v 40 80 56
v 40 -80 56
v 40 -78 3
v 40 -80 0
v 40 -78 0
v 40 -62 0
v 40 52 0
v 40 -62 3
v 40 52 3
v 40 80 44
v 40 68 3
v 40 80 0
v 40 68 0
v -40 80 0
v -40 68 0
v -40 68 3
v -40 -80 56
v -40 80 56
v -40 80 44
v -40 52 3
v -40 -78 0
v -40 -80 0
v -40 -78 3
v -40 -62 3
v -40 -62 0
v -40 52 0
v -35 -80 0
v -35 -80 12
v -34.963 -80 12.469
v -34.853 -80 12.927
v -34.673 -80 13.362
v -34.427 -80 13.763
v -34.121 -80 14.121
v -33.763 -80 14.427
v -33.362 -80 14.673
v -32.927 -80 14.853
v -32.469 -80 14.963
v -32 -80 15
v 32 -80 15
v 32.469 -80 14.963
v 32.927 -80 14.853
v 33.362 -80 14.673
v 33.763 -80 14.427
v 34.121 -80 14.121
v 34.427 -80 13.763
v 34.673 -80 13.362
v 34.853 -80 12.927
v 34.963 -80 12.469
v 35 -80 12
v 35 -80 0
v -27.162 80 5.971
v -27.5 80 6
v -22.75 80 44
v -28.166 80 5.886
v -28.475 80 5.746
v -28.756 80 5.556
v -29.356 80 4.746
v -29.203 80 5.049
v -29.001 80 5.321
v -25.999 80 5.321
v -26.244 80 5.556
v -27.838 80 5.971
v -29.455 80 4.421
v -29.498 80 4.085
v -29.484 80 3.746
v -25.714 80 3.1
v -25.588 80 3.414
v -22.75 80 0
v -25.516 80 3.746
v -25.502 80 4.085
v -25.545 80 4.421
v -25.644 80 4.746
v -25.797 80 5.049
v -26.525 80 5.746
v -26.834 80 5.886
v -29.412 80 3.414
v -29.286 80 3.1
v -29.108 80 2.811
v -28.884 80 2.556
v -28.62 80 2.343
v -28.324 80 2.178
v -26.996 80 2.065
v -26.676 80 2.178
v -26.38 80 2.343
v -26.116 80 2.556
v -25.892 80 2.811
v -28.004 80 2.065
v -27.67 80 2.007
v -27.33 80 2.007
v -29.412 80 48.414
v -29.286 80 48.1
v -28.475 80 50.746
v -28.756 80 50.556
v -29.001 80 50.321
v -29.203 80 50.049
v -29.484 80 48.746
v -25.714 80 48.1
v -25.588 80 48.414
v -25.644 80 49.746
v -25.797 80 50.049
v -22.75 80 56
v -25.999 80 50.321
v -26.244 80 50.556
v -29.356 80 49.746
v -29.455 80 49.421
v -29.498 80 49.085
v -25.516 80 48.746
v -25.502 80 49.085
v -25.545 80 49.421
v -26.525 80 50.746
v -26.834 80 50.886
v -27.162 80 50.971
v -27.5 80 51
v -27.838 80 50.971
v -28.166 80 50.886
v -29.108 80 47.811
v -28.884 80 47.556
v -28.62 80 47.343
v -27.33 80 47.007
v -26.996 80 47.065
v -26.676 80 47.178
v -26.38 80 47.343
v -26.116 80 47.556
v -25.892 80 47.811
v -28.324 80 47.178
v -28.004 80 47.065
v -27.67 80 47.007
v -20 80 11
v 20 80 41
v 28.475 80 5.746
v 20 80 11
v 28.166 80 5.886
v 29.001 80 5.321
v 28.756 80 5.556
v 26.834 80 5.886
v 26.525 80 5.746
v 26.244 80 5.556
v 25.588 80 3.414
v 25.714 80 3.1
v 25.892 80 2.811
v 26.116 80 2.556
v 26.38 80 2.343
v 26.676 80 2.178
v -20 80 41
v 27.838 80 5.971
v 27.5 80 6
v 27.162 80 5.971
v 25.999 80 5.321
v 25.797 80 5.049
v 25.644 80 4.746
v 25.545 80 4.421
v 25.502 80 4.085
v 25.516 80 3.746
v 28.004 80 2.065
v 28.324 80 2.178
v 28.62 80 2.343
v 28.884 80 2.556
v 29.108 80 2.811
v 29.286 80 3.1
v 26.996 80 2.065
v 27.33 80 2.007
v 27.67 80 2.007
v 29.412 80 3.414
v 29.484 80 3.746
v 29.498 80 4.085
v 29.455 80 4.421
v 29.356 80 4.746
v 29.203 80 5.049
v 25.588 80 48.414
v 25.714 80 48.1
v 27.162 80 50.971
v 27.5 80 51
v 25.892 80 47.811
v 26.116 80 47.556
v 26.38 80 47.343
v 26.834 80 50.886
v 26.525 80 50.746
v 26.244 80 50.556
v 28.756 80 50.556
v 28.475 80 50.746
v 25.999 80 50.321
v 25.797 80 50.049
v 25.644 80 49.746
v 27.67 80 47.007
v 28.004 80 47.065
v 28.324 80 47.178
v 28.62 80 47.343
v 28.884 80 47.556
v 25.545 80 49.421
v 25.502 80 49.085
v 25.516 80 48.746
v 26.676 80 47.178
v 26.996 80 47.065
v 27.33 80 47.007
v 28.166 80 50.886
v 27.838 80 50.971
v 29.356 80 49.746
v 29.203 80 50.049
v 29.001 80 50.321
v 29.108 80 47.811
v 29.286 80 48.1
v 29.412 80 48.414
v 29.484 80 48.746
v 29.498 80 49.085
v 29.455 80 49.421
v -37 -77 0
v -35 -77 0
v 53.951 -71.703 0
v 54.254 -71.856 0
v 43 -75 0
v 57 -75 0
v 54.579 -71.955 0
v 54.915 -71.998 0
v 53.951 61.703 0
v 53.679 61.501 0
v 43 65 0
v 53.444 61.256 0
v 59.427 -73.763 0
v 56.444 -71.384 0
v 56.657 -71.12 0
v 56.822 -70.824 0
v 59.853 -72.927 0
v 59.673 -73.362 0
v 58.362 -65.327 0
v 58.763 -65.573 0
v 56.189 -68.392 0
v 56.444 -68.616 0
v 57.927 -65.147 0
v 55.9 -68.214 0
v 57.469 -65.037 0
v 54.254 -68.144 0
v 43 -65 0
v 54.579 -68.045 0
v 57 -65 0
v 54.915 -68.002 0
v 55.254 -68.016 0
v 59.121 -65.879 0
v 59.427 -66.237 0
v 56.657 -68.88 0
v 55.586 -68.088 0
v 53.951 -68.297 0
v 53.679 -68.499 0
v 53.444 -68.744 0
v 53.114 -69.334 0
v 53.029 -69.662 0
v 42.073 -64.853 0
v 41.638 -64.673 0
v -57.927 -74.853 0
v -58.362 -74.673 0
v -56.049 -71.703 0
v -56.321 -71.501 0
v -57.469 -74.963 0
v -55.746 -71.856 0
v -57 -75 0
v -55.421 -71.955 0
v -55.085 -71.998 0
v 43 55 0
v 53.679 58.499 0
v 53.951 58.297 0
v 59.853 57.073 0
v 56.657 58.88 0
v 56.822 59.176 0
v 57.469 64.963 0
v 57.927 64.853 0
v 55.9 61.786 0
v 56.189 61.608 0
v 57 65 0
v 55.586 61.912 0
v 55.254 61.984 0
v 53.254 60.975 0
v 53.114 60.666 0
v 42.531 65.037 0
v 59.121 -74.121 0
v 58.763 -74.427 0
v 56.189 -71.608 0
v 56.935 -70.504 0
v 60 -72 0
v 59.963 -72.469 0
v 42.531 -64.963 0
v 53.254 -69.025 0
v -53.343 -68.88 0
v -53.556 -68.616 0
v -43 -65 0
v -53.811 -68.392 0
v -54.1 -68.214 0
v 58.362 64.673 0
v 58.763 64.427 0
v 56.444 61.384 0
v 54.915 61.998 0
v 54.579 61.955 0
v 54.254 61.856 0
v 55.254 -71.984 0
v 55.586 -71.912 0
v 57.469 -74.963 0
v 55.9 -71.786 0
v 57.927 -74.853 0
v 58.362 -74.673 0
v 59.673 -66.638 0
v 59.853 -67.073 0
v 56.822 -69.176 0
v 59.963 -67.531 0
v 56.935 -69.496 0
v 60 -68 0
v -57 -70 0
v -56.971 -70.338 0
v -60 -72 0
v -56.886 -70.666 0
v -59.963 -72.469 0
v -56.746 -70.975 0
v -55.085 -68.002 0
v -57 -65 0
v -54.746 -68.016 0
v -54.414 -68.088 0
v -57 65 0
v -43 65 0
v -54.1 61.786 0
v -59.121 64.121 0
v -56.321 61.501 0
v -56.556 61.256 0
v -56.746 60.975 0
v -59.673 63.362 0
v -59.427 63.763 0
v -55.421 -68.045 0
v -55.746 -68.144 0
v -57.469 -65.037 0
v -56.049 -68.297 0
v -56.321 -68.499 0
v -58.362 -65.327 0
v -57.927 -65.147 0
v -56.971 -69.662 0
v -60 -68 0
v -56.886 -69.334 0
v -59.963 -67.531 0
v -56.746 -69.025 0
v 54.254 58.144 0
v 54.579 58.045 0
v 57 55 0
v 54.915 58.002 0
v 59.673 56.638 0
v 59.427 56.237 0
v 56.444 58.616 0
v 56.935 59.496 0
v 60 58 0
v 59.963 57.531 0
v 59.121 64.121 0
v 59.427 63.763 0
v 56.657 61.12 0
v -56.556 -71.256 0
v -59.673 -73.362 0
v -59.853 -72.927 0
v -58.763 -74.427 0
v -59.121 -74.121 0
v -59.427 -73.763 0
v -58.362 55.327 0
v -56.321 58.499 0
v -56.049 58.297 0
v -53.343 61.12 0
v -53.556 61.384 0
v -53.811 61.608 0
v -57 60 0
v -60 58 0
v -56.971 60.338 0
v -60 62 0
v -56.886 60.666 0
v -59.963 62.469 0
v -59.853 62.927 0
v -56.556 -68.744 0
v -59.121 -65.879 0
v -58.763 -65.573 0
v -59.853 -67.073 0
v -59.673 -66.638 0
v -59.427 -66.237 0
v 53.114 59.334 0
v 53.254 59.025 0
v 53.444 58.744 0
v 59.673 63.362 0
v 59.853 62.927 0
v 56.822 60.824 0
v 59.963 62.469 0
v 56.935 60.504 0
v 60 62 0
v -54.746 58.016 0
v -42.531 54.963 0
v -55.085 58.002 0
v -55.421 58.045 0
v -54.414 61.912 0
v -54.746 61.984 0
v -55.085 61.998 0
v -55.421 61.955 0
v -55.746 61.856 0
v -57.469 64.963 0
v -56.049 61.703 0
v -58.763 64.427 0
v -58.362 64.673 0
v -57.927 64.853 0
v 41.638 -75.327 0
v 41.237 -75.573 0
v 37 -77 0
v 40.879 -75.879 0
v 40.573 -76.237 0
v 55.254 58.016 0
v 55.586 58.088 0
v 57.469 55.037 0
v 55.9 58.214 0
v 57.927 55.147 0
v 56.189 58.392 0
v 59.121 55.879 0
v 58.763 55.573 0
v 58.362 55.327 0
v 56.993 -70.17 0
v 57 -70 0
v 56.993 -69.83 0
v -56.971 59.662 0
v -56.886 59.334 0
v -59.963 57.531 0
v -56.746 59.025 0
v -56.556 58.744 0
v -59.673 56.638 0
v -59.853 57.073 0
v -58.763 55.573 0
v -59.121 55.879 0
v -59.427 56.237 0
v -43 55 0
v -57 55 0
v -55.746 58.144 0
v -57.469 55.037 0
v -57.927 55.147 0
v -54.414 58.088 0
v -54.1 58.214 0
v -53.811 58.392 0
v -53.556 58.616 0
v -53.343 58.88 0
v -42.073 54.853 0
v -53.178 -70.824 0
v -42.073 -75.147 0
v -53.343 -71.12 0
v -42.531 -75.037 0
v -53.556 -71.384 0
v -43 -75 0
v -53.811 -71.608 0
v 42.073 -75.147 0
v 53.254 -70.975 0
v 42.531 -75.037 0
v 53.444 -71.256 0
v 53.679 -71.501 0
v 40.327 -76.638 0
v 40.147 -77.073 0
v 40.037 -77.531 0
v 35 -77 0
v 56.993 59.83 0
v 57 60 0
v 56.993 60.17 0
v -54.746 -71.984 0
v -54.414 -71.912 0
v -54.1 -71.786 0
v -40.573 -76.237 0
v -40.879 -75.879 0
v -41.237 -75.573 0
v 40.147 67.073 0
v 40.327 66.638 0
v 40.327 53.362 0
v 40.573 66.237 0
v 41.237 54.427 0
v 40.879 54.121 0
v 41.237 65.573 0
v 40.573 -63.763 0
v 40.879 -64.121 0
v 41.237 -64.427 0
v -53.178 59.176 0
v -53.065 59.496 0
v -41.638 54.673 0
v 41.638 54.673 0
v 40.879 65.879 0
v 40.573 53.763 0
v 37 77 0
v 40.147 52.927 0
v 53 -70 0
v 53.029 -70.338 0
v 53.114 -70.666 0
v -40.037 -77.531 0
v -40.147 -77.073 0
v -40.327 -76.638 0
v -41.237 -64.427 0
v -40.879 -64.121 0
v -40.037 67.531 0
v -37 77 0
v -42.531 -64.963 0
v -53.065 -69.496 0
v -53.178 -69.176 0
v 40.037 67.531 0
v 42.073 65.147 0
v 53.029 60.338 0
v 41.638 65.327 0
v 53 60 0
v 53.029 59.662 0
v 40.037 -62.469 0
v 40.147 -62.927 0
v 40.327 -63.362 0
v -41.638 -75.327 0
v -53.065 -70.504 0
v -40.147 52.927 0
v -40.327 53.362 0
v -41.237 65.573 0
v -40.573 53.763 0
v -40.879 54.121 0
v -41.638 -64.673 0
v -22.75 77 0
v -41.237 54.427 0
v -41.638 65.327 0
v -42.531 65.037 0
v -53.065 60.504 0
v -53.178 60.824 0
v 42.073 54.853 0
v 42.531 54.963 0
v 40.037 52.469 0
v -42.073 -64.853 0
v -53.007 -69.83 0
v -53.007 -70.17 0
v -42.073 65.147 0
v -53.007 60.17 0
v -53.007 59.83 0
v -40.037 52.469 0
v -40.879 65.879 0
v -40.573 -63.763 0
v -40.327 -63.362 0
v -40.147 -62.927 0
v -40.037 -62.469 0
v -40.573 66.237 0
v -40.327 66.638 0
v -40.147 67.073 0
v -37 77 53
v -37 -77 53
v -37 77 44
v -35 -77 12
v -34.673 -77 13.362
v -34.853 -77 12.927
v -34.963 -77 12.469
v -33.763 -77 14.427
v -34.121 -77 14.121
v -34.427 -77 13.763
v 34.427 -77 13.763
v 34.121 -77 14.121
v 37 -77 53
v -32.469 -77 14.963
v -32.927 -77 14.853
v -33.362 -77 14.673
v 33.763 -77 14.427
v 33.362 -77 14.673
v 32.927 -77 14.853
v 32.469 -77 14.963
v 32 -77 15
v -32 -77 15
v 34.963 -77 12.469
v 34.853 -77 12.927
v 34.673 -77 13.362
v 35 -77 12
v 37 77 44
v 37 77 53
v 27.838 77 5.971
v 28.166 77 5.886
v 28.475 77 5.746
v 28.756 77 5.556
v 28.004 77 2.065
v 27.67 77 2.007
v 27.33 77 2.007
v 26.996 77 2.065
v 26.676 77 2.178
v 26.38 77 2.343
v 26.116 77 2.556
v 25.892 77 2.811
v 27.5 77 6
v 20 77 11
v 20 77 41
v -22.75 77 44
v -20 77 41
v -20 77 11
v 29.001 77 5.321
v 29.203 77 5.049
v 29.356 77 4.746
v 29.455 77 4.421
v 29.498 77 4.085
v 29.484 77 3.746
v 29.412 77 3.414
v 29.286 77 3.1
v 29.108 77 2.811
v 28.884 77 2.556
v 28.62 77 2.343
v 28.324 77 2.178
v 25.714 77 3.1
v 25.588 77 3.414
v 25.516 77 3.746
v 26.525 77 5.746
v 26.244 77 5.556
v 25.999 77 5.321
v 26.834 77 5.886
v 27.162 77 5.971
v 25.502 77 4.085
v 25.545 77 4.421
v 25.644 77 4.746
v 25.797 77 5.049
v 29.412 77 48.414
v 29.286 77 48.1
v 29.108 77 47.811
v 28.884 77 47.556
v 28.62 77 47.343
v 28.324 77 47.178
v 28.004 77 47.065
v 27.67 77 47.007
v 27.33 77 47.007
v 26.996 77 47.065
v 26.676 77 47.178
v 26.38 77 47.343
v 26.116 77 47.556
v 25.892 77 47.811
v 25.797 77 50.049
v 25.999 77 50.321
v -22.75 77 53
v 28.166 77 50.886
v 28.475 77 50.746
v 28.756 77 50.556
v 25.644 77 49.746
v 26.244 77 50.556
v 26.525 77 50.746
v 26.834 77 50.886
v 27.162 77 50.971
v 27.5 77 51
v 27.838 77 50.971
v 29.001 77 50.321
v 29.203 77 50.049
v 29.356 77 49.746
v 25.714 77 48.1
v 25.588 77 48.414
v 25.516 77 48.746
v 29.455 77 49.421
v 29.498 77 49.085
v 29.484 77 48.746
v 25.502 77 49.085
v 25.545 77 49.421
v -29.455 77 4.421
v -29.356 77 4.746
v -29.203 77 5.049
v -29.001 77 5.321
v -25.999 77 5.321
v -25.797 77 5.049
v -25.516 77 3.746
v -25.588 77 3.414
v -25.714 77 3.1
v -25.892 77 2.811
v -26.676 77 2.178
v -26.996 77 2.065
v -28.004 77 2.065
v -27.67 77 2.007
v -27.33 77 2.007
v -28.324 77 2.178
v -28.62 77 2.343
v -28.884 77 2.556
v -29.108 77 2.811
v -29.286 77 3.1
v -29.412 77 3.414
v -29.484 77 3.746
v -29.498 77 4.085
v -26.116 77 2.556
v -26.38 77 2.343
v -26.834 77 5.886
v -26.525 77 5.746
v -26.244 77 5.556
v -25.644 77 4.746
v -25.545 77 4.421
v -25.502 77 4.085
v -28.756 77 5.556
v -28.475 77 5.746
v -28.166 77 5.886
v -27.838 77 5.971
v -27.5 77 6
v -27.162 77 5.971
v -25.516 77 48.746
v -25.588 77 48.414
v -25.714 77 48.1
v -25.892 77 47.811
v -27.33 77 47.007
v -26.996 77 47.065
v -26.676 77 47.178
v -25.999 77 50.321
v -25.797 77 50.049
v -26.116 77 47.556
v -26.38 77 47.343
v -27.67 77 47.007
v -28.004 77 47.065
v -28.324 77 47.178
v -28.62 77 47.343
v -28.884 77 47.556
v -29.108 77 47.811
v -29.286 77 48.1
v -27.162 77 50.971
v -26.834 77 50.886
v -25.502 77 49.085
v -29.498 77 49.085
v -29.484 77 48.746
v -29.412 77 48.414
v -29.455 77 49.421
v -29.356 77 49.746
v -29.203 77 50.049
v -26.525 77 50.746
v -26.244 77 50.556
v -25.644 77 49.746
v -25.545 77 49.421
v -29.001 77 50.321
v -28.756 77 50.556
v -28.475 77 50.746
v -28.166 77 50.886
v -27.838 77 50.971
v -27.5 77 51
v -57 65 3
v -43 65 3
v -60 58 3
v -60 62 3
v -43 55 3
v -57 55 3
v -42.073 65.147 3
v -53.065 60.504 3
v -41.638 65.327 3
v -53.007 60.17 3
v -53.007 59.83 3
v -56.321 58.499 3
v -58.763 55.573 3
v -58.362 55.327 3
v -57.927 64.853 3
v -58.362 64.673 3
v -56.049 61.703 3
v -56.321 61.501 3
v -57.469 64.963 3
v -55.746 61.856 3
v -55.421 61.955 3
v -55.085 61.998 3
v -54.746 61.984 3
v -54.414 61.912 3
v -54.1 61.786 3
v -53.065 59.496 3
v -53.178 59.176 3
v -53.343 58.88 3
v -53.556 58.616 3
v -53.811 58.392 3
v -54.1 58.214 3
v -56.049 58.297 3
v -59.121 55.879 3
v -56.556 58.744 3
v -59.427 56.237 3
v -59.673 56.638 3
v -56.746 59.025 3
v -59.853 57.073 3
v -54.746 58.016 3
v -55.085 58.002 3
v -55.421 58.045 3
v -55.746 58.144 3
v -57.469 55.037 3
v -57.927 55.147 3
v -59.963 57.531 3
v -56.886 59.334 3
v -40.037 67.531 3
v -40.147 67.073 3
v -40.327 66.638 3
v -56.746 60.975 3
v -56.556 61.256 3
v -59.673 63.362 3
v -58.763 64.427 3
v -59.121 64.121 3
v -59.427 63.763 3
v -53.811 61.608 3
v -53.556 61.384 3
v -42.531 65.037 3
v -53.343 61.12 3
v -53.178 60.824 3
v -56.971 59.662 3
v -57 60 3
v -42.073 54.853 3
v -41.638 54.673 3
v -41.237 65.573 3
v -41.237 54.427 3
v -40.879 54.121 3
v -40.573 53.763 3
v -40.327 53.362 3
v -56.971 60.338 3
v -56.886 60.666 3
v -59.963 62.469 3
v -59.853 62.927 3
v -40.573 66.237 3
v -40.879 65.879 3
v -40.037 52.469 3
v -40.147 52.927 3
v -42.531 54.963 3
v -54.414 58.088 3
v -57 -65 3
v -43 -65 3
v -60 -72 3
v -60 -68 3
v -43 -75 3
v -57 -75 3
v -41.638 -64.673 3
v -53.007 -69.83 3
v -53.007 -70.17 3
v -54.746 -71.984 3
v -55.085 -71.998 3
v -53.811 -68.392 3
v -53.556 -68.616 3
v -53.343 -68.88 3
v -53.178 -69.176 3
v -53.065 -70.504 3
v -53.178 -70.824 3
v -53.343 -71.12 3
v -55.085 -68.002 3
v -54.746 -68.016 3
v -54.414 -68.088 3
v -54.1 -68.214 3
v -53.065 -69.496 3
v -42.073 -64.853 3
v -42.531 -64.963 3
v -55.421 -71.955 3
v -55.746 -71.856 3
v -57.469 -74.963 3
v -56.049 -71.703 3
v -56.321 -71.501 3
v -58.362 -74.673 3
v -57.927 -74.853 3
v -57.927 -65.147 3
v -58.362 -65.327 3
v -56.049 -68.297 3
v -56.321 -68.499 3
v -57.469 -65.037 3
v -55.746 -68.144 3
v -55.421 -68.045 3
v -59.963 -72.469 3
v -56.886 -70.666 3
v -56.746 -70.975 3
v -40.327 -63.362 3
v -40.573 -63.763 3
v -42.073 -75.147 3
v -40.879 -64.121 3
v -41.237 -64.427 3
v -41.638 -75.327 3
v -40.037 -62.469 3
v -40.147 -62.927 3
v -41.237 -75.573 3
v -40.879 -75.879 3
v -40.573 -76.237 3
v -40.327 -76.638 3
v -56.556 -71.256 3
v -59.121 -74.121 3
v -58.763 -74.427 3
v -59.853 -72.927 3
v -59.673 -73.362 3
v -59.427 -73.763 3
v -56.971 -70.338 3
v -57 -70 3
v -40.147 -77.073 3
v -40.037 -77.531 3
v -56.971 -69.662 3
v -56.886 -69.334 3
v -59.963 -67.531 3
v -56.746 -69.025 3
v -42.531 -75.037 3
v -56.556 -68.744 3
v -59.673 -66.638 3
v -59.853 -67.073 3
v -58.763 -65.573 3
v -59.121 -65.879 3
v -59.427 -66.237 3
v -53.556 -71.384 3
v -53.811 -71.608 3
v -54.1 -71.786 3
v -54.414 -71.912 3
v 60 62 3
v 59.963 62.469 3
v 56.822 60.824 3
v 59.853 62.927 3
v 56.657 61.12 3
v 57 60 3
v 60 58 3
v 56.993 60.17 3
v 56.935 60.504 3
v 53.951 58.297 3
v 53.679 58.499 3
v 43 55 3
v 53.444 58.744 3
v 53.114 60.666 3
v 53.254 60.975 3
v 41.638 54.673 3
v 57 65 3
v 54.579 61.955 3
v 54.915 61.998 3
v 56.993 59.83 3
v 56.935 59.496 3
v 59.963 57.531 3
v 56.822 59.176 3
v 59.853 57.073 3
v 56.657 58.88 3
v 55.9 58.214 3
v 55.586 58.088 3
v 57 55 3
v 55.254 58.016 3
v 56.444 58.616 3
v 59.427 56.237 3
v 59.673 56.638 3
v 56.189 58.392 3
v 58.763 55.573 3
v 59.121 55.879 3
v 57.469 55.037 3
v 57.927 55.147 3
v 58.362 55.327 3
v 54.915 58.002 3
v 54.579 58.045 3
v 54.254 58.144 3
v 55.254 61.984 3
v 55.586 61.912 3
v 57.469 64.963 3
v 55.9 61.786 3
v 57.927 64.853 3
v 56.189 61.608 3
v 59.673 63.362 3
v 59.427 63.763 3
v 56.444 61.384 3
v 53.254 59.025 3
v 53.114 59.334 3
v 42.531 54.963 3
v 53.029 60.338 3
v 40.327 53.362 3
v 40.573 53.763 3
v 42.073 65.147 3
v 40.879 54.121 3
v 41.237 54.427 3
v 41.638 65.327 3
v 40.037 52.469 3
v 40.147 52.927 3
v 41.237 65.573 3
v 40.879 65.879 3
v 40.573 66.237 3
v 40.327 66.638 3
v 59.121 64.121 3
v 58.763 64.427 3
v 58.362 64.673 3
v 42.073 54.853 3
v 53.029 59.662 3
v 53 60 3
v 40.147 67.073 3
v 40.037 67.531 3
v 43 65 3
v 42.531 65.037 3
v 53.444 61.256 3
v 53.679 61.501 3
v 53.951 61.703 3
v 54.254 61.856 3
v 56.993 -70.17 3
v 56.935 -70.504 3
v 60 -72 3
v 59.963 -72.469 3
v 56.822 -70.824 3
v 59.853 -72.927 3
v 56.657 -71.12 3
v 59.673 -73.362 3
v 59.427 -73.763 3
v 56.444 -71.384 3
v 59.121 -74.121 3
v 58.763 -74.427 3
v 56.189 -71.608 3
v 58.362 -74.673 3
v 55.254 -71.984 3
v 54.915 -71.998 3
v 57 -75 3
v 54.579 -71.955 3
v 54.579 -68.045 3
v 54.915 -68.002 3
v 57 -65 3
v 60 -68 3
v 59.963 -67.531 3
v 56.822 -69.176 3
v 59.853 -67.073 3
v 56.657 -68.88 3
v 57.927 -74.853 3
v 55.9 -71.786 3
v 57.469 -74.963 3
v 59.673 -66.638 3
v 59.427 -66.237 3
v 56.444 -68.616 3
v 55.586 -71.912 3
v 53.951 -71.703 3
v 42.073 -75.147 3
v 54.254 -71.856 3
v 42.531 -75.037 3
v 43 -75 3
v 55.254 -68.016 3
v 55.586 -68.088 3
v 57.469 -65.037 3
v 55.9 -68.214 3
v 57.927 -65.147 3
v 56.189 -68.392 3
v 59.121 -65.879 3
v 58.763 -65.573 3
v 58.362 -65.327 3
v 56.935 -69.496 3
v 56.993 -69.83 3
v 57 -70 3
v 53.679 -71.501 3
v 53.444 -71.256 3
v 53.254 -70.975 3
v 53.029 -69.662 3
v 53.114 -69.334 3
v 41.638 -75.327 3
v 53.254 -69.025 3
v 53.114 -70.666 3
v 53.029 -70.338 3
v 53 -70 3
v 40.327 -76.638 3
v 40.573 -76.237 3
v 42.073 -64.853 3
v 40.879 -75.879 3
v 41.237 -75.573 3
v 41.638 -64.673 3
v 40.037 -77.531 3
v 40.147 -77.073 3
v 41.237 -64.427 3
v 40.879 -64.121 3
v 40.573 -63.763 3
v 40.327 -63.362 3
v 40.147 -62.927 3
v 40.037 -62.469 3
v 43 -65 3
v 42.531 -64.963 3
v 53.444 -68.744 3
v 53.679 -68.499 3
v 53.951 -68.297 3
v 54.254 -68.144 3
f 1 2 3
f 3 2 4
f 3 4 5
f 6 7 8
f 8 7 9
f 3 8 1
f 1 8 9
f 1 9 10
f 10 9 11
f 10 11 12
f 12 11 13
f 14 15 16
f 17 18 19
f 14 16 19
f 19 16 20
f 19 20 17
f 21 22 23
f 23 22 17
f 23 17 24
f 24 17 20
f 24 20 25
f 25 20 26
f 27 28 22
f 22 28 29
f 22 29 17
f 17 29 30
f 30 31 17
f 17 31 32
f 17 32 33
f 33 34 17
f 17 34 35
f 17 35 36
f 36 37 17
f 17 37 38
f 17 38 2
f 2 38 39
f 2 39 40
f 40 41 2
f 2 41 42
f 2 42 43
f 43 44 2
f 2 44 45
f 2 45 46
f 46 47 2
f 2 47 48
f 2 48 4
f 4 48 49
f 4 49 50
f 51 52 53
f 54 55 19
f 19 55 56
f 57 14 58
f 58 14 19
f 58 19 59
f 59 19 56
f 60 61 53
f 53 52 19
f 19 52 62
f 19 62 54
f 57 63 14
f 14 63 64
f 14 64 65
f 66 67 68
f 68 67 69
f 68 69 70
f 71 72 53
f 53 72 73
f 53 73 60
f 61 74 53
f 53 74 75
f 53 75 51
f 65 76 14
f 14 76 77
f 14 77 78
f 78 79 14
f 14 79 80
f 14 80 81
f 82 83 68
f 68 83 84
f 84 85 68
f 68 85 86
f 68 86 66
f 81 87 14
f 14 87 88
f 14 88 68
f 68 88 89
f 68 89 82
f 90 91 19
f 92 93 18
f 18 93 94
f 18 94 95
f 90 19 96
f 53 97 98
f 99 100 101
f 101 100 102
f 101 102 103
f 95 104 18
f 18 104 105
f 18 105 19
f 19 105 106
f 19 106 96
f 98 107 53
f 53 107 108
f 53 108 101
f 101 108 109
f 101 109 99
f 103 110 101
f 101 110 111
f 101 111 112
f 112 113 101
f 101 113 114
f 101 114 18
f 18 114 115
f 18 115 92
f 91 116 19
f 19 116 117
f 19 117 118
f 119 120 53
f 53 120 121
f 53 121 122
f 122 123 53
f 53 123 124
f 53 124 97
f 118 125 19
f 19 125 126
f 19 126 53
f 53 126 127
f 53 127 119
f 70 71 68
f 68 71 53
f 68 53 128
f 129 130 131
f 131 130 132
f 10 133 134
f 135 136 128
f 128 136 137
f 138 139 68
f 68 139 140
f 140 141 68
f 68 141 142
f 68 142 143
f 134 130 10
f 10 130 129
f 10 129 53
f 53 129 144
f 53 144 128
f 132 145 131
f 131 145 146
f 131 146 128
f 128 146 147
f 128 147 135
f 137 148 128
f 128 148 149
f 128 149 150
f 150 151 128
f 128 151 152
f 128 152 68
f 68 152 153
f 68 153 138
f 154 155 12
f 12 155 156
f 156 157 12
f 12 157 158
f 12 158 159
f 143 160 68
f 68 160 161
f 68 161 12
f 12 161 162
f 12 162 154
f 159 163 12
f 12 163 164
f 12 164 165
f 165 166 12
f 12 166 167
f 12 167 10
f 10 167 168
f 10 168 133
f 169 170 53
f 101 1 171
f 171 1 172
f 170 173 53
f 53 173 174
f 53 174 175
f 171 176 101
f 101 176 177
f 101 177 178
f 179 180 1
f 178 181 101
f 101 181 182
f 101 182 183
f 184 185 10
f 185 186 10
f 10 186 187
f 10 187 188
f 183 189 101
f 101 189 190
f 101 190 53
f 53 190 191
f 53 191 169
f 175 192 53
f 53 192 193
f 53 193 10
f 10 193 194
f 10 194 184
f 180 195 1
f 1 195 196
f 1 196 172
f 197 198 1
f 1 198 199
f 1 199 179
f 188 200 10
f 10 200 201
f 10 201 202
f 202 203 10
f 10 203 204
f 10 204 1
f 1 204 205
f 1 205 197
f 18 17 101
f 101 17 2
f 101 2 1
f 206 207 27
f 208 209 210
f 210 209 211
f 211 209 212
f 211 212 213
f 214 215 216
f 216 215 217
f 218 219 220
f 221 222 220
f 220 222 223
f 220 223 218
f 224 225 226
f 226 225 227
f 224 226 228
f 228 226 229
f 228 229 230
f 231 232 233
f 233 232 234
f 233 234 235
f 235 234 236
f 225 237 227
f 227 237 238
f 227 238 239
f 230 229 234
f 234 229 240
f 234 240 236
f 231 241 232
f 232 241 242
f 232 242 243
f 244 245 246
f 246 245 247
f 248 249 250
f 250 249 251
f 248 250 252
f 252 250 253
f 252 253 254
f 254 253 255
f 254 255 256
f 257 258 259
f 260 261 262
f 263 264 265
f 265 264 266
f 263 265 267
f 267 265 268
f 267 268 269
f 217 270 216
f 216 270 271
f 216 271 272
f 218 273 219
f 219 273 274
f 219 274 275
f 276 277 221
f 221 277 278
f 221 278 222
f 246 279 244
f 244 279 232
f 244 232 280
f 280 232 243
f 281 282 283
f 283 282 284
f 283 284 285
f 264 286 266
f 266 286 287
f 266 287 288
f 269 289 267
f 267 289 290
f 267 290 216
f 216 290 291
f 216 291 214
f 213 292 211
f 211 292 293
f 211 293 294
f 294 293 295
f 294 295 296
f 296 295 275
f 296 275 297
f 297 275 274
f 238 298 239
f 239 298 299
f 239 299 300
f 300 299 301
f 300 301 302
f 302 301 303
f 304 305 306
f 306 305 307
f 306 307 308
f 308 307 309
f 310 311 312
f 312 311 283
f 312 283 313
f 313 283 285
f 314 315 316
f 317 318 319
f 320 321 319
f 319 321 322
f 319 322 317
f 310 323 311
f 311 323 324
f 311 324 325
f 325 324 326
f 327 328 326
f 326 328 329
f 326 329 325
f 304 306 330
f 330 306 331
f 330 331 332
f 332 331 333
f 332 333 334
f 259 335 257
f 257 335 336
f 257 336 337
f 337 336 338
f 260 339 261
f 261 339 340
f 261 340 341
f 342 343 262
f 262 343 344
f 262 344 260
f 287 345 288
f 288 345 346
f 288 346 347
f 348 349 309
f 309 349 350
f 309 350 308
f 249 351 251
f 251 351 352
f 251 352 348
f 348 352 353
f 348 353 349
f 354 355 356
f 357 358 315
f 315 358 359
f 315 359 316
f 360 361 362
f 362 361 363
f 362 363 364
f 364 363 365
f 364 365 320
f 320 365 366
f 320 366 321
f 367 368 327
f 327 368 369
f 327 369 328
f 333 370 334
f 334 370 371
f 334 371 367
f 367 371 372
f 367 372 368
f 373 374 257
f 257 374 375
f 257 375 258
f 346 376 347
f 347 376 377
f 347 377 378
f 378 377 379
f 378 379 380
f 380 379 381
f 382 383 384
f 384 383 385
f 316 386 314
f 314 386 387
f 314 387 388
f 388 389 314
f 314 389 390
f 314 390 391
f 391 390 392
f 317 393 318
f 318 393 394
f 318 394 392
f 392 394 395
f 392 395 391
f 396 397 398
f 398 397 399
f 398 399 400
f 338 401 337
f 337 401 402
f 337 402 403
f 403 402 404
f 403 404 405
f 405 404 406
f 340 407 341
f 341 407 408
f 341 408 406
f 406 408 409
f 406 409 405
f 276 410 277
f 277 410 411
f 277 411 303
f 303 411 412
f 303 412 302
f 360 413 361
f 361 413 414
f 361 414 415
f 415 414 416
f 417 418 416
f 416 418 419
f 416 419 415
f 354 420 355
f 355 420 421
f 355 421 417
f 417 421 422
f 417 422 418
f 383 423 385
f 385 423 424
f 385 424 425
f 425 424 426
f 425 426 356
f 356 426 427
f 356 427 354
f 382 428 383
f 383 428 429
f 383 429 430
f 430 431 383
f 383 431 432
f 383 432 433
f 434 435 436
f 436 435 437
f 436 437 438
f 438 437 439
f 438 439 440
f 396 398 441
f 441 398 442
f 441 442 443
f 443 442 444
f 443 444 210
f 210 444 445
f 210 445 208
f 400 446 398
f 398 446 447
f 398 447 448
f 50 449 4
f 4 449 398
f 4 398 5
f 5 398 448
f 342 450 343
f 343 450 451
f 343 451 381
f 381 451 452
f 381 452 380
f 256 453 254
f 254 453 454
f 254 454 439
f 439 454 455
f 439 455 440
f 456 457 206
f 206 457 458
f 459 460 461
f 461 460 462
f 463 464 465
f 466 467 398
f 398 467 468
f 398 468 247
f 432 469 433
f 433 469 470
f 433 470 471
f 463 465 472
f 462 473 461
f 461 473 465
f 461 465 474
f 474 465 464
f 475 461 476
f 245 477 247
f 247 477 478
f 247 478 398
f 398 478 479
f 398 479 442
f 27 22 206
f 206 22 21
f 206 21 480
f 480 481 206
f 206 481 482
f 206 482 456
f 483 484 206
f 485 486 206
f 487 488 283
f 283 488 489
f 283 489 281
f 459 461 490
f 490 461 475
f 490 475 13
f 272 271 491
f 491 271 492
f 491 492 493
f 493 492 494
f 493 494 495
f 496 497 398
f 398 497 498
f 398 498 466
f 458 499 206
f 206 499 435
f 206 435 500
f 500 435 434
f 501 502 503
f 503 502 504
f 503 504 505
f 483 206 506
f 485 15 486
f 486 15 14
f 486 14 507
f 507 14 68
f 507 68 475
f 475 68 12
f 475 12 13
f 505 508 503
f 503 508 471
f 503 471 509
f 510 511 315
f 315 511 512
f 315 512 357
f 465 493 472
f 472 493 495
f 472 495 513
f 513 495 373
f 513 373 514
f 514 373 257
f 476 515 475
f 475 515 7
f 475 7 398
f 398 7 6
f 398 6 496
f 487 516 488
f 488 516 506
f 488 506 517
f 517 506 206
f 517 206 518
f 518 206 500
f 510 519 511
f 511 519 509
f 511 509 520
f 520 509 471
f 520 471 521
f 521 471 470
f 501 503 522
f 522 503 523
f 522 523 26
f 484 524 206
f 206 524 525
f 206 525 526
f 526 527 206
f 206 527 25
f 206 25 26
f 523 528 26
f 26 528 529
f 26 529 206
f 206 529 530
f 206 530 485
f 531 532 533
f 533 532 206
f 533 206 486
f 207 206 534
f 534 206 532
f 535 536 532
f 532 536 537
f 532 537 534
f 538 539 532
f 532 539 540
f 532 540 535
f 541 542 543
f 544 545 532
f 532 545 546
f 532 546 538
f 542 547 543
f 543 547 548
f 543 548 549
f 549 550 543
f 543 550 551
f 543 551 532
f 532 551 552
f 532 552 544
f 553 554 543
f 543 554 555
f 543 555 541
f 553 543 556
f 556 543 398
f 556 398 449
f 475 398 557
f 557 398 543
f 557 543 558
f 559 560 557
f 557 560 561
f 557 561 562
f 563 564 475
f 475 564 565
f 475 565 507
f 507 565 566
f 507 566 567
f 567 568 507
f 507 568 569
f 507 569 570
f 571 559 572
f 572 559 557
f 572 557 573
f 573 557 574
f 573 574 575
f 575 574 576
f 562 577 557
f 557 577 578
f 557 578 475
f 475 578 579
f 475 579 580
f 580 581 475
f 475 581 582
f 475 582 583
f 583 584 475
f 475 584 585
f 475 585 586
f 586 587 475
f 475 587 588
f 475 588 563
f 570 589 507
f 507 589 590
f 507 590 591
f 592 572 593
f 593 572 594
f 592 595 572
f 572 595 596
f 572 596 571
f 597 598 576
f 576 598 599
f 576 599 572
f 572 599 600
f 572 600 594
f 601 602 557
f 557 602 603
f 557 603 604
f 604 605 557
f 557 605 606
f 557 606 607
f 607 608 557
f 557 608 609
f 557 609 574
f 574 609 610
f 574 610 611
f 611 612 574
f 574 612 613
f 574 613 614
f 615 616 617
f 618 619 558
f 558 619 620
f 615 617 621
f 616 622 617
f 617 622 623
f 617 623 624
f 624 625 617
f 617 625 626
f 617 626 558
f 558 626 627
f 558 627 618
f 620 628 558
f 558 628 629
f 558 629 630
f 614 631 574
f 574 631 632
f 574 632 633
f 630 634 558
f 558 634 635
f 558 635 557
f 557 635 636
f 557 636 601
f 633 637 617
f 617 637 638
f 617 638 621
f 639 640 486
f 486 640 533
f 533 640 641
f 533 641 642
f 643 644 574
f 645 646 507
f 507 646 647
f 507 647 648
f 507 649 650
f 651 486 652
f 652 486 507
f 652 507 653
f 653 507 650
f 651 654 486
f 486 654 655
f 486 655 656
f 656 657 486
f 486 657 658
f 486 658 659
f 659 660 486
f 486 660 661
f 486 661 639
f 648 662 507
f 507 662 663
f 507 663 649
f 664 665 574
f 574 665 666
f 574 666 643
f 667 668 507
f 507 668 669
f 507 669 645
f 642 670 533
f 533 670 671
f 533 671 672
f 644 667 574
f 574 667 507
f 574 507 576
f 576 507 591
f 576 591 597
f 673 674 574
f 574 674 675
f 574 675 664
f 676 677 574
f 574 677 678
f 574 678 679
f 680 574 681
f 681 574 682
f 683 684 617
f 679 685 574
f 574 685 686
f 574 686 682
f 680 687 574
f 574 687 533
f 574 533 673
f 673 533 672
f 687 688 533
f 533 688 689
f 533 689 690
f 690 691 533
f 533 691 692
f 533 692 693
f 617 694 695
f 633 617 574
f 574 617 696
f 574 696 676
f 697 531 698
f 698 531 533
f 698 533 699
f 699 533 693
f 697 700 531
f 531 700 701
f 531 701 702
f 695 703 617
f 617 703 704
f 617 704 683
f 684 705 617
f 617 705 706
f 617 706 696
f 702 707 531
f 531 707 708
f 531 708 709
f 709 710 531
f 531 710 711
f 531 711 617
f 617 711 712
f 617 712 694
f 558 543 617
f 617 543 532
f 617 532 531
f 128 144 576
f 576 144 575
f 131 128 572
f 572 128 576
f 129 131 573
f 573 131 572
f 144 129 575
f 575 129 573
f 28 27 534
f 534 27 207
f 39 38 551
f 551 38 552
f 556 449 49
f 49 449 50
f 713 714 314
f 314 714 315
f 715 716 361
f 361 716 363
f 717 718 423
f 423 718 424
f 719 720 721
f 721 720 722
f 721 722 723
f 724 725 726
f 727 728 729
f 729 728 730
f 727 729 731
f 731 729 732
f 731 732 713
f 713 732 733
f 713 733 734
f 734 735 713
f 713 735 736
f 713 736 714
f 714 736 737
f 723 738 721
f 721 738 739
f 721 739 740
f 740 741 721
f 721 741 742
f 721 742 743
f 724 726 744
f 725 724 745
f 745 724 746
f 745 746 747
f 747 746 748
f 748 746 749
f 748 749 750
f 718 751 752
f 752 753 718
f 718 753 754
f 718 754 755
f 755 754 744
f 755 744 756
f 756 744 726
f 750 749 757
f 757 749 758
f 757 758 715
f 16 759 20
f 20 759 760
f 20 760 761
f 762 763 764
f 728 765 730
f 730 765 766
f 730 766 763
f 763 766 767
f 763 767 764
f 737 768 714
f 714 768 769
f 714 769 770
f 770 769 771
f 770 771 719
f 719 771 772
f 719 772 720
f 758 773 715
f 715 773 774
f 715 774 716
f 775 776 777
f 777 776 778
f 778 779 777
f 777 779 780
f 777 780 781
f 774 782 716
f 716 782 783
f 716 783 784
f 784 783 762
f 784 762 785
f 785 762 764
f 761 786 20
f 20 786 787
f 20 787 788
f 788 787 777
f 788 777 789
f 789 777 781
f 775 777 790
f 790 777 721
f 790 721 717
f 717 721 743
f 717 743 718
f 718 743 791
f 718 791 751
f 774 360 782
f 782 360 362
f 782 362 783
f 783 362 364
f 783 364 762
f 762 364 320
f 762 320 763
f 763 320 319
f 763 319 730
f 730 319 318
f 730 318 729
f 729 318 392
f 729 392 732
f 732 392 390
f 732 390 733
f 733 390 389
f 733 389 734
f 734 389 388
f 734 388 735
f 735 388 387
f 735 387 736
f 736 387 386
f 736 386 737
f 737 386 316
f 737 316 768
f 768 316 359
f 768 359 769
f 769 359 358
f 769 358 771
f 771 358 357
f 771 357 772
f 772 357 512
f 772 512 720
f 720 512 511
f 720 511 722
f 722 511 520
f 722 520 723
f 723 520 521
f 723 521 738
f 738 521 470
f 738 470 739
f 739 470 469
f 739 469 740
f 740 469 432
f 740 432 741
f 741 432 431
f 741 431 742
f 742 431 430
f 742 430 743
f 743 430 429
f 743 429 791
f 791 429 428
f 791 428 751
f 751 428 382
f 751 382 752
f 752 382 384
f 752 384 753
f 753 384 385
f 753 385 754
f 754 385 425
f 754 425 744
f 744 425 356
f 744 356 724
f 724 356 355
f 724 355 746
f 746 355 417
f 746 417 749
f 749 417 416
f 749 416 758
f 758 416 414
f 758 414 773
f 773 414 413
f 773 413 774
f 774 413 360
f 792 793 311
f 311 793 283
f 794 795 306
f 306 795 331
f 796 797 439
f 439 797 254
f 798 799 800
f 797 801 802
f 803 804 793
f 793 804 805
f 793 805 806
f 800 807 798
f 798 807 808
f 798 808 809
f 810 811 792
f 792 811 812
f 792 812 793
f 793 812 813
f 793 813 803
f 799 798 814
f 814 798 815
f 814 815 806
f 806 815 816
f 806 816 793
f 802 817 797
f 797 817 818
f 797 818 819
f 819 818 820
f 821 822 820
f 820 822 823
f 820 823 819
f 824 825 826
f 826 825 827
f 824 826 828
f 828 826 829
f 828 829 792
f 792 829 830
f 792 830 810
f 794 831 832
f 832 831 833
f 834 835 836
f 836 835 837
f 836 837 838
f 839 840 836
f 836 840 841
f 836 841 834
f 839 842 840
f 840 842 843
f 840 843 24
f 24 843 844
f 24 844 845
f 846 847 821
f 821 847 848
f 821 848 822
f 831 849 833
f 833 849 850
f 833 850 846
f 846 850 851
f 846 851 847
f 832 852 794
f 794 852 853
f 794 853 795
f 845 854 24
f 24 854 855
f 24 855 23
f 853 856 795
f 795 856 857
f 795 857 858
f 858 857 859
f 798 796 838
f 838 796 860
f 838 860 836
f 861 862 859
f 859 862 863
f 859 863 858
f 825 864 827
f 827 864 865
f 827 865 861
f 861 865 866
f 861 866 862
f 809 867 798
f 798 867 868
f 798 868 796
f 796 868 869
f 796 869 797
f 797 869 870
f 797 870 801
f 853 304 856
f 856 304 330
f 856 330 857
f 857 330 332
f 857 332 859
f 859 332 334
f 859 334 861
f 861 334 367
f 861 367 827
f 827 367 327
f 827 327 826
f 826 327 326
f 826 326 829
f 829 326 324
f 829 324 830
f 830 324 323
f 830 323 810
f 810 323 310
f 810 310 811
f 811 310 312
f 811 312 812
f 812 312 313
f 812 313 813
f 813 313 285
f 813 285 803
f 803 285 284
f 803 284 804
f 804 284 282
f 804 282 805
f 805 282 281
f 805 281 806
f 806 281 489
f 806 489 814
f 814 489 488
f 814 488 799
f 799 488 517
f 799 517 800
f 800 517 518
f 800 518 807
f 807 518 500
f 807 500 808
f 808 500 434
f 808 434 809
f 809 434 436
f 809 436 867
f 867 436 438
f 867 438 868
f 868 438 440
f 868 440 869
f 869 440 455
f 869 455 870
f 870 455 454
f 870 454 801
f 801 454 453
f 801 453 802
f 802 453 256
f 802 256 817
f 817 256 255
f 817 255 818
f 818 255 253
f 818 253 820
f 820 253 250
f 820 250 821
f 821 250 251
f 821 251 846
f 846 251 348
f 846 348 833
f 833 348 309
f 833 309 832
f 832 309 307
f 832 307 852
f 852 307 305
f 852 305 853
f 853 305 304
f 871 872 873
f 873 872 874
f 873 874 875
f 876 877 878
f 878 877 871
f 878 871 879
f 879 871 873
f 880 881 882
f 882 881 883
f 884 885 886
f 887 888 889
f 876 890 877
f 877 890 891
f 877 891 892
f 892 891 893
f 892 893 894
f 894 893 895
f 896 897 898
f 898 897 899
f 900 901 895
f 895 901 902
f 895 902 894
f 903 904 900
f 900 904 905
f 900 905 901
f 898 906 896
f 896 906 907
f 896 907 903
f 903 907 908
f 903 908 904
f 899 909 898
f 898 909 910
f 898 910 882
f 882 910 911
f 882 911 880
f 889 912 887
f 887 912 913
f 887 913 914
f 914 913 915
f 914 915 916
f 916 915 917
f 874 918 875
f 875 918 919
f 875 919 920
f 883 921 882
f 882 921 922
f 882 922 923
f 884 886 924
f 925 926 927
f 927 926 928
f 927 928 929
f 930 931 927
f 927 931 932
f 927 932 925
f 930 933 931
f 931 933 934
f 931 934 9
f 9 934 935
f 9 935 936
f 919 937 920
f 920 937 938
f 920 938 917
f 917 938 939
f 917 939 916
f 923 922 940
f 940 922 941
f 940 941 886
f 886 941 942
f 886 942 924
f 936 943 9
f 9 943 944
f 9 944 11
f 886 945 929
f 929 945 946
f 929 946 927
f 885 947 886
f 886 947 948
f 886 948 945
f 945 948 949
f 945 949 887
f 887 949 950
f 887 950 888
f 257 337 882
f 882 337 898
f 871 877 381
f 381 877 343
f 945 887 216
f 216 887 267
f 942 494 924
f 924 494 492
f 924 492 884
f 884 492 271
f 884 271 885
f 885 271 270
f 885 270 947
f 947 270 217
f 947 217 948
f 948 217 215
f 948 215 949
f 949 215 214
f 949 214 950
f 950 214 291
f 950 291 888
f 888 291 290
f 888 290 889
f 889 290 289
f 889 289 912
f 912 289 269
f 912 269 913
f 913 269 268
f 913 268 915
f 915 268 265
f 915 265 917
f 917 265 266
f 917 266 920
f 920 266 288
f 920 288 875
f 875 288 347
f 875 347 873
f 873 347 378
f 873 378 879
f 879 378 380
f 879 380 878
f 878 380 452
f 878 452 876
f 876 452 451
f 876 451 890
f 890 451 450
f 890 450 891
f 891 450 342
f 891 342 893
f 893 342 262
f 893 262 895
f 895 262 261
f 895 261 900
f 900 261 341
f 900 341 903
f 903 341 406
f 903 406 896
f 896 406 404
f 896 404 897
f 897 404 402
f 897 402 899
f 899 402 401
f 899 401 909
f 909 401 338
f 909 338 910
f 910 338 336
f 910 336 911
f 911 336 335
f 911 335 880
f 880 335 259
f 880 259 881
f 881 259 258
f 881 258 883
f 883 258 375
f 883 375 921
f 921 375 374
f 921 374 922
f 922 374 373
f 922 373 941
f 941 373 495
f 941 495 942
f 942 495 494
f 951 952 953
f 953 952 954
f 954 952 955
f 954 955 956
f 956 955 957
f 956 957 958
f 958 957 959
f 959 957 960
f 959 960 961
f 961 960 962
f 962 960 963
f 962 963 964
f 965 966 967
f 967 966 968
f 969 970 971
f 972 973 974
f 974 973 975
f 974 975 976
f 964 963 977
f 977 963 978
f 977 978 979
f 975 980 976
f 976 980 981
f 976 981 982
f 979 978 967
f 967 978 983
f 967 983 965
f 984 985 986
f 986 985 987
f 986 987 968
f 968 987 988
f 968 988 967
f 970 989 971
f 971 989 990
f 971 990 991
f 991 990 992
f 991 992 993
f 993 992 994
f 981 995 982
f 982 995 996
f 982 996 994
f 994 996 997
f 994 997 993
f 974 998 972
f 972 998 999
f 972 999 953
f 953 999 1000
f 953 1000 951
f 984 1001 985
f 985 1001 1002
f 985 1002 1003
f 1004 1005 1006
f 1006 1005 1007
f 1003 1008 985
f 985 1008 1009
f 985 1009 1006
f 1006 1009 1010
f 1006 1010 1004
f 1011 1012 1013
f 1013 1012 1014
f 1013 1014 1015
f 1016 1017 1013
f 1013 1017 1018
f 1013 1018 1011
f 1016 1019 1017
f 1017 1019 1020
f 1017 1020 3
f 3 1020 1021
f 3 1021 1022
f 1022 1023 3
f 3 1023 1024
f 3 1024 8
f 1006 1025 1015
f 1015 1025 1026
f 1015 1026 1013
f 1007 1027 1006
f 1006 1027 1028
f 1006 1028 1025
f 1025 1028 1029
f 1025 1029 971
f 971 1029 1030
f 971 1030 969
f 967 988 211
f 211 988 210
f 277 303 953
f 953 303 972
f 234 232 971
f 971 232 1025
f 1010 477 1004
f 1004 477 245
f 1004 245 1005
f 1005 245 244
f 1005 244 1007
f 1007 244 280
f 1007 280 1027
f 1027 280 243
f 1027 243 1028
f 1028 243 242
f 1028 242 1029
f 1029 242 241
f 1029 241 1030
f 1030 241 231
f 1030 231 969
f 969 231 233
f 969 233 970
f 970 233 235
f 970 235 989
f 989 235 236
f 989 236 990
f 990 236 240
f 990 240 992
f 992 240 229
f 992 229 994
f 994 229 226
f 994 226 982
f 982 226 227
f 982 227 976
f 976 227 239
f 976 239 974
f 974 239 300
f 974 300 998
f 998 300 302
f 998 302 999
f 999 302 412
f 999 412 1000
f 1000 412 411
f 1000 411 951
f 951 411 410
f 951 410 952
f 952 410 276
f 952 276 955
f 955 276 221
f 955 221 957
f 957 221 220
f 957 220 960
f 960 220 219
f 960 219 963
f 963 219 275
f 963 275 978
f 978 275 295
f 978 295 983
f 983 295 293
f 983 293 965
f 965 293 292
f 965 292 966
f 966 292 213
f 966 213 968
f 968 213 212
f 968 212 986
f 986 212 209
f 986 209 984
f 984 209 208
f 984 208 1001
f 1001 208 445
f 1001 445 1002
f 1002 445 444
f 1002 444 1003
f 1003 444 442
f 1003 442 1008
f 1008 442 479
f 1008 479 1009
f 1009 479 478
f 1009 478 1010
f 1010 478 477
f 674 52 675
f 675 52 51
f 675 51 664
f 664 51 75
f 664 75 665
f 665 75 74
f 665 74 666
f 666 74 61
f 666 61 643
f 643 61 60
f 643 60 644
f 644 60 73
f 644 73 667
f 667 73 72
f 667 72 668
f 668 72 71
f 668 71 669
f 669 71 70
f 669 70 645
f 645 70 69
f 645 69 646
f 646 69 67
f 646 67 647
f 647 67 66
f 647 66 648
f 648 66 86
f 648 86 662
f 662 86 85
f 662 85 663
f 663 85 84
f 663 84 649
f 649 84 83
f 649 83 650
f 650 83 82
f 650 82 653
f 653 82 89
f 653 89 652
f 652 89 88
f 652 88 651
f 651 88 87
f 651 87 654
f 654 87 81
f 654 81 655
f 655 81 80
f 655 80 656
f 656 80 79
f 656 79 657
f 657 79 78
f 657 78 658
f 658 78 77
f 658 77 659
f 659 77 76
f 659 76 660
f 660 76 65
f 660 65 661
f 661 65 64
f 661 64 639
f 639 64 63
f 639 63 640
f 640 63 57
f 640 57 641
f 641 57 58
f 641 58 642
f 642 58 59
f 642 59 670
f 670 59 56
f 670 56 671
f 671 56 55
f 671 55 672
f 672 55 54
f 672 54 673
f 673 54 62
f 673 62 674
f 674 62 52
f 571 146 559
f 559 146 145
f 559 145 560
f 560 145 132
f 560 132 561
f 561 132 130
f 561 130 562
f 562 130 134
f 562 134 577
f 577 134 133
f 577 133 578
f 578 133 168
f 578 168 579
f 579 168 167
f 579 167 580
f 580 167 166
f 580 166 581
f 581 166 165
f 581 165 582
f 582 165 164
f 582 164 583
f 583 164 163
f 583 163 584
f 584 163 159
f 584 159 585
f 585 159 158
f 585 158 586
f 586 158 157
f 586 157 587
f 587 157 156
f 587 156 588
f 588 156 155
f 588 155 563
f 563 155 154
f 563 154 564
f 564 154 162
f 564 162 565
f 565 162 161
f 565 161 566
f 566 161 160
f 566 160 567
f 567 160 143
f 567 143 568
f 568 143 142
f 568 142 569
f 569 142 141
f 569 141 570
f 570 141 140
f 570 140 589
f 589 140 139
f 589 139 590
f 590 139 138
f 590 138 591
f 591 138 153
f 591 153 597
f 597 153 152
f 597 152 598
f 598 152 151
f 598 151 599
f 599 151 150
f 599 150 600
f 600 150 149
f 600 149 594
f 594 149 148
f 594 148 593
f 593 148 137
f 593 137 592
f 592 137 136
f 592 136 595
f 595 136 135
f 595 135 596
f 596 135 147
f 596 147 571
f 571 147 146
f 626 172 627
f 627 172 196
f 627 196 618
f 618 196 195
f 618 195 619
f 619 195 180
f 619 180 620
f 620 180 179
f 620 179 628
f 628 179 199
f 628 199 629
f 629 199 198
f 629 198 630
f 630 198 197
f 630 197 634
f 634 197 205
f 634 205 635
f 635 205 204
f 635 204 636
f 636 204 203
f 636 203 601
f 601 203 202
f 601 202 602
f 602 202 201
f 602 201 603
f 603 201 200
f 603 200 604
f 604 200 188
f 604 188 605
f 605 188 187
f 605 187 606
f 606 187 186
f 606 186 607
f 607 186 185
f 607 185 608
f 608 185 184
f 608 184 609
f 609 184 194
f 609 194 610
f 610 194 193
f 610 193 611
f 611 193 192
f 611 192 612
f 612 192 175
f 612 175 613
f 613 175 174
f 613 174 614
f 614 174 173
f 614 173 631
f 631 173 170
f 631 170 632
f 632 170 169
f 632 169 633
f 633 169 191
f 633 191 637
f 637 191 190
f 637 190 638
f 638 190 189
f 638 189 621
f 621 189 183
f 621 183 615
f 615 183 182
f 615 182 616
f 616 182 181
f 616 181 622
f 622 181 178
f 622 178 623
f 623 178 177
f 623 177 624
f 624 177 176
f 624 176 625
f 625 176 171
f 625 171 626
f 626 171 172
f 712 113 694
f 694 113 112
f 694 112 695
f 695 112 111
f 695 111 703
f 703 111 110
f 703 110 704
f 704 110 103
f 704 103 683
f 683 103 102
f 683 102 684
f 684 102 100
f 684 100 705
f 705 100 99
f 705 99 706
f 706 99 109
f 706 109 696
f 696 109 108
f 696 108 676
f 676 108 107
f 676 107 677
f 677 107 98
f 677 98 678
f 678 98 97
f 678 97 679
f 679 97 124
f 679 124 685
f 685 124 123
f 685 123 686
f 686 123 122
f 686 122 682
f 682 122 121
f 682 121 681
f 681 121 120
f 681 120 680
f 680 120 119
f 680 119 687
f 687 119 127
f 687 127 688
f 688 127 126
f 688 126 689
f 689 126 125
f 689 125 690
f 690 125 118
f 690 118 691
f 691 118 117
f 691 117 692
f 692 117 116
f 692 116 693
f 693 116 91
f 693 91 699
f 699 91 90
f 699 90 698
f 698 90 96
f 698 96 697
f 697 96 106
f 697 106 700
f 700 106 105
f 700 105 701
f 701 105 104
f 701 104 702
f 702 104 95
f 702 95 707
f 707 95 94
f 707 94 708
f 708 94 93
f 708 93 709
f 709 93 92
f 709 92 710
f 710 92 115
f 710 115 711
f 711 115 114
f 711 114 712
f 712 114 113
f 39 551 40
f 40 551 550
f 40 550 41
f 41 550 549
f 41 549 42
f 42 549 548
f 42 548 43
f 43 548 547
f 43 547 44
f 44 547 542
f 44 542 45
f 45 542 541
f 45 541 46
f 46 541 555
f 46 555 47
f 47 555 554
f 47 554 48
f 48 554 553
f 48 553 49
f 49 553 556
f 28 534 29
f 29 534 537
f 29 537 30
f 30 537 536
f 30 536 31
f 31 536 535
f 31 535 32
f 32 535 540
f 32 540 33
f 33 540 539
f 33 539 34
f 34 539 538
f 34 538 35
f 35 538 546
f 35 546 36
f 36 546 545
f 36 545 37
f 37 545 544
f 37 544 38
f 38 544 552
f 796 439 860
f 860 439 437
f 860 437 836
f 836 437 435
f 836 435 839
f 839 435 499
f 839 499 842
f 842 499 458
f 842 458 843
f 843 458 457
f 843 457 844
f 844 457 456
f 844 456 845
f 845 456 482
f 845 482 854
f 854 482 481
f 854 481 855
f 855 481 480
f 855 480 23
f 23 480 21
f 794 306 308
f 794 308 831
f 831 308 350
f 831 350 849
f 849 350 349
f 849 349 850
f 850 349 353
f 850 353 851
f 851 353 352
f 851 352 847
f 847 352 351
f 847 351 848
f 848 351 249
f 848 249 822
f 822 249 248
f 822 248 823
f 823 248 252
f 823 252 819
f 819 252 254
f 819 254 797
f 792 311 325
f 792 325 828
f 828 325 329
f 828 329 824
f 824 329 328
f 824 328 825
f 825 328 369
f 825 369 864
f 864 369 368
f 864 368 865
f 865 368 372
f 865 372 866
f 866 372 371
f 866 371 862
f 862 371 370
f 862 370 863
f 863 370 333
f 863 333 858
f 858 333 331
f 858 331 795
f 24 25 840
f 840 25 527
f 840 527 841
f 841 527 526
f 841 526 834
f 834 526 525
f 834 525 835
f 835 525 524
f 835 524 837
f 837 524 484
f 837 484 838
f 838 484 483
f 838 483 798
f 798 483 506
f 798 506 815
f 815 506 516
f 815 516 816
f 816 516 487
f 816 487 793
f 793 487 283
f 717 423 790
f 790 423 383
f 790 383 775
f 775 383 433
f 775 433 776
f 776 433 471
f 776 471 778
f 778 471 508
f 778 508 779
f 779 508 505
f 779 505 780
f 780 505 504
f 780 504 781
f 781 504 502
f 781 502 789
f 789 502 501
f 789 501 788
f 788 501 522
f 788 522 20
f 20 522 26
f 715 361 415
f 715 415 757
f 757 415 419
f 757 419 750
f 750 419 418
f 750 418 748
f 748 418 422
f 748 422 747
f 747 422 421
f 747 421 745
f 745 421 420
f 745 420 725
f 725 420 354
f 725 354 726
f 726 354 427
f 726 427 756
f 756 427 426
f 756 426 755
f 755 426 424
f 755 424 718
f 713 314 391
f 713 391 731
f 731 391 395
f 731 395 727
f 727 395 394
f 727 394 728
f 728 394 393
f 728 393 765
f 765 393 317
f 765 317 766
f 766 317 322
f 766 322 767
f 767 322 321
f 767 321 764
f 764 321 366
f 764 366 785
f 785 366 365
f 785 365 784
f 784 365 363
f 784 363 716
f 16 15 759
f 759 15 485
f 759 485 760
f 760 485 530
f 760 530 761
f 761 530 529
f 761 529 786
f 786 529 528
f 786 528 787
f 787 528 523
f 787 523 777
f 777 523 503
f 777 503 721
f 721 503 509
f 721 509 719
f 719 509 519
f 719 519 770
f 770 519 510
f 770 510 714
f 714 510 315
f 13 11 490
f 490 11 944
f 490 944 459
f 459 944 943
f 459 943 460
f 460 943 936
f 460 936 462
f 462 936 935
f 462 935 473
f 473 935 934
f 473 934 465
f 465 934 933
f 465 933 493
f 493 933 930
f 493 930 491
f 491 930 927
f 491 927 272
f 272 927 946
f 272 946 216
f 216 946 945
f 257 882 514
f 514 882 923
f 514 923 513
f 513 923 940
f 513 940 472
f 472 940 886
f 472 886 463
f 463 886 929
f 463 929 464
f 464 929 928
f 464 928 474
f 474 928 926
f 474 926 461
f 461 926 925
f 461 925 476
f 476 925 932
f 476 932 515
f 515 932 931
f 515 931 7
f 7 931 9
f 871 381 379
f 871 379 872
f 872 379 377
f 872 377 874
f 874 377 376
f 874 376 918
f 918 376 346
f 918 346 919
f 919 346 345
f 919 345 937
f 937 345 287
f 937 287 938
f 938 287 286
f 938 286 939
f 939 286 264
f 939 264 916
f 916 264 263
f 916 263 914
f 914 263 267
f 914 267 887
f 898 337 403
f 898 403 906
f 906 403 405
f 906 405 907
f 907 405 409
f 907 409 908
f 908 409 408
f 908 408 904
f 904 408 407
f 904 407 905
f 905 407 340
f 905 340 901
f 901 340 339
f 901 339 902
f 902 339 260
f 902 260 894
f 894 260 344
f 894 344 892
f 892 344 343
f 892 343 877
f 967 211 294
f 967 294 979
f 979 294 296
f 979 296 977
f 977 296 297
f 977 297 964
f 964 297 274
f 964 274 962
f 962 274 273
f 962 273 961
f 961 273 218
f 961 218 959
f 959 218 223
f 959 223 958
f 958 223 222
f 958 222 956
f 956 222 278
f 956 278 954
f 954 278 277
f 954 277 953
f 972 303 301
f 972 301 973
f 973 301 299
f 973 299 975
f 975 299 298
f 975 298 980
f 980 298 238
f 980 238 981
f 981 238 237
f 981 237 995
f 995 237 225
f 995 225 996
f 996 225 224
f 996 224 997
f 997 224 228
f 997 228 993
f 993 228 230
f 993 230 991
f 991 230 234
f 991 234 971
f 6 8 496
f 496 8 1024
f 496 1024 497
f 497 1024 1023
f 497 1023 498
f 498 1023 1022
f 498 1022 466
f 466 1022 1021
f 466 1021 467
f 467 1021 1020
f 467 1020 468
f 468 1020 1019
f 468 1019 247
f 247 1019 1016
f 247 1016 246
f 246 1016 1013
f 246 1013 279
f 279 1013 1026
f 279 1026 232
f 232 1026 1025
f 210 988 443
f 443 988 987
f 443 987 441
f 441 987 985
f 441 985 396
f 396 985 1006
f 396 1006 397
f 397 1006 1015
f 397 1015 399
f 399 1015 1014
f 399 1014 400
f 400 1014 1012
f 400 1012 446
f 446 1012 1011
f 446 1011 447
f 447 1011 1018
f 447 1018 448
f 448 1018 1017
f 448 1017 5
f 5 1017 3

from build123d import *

# Parameters (mm, degrees)
SKETCH1_W           = 80
SKETCH1_H           = 160
BOSS_EXTRUDE1_DEPTH = 56
SHELL1_T            = -3
SKETCH2_W           = 40
SKETCH2_H           = 30
CUT_EXTRUDE1_DEPTH  = 70
SKETCH4_W           = 70
SKETCH4_H           = 15
CUT_EXTRUDE3_DEPTH  = 70
SKETCH5_W           = 20
SKETCH5_H           = 10
SKETCH5_R           = 2
BOSS_EXTRUDE2_DEPTH = 3
SKETCH6_R           = 2
CUT_EXTRUDE4_DEPTH  = 3
FILLET1_R           = 3


with BuildPart() as part:
    # Sketch1 → Boss-Extrude1 (new body)
    with BuildSketch(Plane.XY):
        Rectangle(SKETCH1_W, SKETCH1_H)
    extrude(amount=BOSS_EXTRUDE1_DEPTH)

    # Shell1
    shell1_openings = [part.faces().sort_by_distance(p)[0] for p in [
        (0, 0, 0),
    ]]
    offset(amount=SHELL1_T, openings=shell1_openings, kind=Kind.INTERSECTION)

    # Sketch2 → Cut-Extrude1 (cut)
    with BuildSketch(Plane(origin=(0, 80, 0), x_dir=(1, 0, 0), z_dir=(0, 1, 0))):
        with Locations((0, -26)):
            Rectangle(SKETCH2_W, SKETCH2_H)
    extrude(amount=-CUT_EXTRUDE1_DEPTH, mode=Mode.SUBTRACT)

    # Sketch4 → Cut-Extrude3 (cut)
    with BuildSketch(Plane(origin=(0, -80, 0), x_dir=(-1, 0, 0), z_dir=(0, -1, 0))):
        with Locations((0, -7.5)):
            Rectangle(SKETCH4_W, SKETCH4_H)
    extrude(amount=-CUT_EXTRUDE3_DEPTH, mode=Mode.SUBTRACT)

    # Sketch5 → Boss-Extrude2 (add)
    # profile 1 of 2: a face of its own
    with BuildSketch(Plane(origin=(0, 0, 0), x_dir=(-1, 0, 0), z_dir=(0, 0, -1))):
        with Locations((50, 60)):
            Rectangle(SKETCH5_W, SKETCH5_H)
        with Locations((55, 60)):
            Circle(SKETCH5_R, mode=Mode.SUBTRACT)
    # profile 2 of 2: a face of its own
    with BuildSketch(Plane(origin=(0, 0, 0), x_dir=(-1, 0, 0), z_dir=(0, 0, -1))):
        with Locations((50, -70)):
            Rectangle(SKETCH5_W, SKETCH5_H)
        with Locations((55, -70)):
            Circle(SKETCH5_R, mode=Mode.SUBTRACT)
    boss_extrude2 = extrude(amount=-BOSS_EXTRUDE2_DEPTH)

    # Mirror1: Boss-Extrude2 across plane
    add(boss_extrude2.mirror(Plane(origin=(0, 0, 0), x_dir=(0, 0, 1), z_dir=(1, 0, 0))))

    # Sketch6 → Cut-Extrude4 (cut)
    with BuildSketch(Plane(origin=(0, 80, 0), x_dir=(1, 0, 0), z_dir=(0, 1, 0))):
        with Locations(Location((-27.5, -4, 0), (0, 0, 270))):
            Circle(SKETCH6_R)
        with Locations(Location((27.5, -4, 0), (0, 0, 270))):
            Circle(SKETCH6_R)
        with Locations(Location((27.5, -49, 0), (0, 0, 270))):
            Circle(SKETCH6_R)
        with Locations(Location((-27.5, -49, 0), (0, 0, 270))):
            Circle(SKETCH6_R)
    extrude(amount=-CUT_EXTRUDE4_DEPTH, mode=Mode.SUBTRACT)

    # Fillet1
    fillet1_edges = [part.edges().sort_by_distance(p)[0] for p in [
        (40, 55, 1.5),
        (60, 55, 1.5),
        (60, 65, 1.5),
        (40, -65, 1.5),
        (40, -75, 1.5),
        (60, -75, 1.5),
        (60, -65, 1.5),
        (-35, -78.5, 15),
        (35, -78.5, 15),
        (-40, 55, 1.5),
        (-40, 65, 1.5),
        (-60, 65, 1.5),
        (-60, 55, 1.5),
        (-40, -75, 1.5),
        (-40, -65, 1.5),
        (-60, -65, 1.5),
        (-60, -75, 1.5),
        (40, 65, 1.5),
    ]]
    fillet(fillet1_edges, radius=FILLET1_R)


solid = part.part
